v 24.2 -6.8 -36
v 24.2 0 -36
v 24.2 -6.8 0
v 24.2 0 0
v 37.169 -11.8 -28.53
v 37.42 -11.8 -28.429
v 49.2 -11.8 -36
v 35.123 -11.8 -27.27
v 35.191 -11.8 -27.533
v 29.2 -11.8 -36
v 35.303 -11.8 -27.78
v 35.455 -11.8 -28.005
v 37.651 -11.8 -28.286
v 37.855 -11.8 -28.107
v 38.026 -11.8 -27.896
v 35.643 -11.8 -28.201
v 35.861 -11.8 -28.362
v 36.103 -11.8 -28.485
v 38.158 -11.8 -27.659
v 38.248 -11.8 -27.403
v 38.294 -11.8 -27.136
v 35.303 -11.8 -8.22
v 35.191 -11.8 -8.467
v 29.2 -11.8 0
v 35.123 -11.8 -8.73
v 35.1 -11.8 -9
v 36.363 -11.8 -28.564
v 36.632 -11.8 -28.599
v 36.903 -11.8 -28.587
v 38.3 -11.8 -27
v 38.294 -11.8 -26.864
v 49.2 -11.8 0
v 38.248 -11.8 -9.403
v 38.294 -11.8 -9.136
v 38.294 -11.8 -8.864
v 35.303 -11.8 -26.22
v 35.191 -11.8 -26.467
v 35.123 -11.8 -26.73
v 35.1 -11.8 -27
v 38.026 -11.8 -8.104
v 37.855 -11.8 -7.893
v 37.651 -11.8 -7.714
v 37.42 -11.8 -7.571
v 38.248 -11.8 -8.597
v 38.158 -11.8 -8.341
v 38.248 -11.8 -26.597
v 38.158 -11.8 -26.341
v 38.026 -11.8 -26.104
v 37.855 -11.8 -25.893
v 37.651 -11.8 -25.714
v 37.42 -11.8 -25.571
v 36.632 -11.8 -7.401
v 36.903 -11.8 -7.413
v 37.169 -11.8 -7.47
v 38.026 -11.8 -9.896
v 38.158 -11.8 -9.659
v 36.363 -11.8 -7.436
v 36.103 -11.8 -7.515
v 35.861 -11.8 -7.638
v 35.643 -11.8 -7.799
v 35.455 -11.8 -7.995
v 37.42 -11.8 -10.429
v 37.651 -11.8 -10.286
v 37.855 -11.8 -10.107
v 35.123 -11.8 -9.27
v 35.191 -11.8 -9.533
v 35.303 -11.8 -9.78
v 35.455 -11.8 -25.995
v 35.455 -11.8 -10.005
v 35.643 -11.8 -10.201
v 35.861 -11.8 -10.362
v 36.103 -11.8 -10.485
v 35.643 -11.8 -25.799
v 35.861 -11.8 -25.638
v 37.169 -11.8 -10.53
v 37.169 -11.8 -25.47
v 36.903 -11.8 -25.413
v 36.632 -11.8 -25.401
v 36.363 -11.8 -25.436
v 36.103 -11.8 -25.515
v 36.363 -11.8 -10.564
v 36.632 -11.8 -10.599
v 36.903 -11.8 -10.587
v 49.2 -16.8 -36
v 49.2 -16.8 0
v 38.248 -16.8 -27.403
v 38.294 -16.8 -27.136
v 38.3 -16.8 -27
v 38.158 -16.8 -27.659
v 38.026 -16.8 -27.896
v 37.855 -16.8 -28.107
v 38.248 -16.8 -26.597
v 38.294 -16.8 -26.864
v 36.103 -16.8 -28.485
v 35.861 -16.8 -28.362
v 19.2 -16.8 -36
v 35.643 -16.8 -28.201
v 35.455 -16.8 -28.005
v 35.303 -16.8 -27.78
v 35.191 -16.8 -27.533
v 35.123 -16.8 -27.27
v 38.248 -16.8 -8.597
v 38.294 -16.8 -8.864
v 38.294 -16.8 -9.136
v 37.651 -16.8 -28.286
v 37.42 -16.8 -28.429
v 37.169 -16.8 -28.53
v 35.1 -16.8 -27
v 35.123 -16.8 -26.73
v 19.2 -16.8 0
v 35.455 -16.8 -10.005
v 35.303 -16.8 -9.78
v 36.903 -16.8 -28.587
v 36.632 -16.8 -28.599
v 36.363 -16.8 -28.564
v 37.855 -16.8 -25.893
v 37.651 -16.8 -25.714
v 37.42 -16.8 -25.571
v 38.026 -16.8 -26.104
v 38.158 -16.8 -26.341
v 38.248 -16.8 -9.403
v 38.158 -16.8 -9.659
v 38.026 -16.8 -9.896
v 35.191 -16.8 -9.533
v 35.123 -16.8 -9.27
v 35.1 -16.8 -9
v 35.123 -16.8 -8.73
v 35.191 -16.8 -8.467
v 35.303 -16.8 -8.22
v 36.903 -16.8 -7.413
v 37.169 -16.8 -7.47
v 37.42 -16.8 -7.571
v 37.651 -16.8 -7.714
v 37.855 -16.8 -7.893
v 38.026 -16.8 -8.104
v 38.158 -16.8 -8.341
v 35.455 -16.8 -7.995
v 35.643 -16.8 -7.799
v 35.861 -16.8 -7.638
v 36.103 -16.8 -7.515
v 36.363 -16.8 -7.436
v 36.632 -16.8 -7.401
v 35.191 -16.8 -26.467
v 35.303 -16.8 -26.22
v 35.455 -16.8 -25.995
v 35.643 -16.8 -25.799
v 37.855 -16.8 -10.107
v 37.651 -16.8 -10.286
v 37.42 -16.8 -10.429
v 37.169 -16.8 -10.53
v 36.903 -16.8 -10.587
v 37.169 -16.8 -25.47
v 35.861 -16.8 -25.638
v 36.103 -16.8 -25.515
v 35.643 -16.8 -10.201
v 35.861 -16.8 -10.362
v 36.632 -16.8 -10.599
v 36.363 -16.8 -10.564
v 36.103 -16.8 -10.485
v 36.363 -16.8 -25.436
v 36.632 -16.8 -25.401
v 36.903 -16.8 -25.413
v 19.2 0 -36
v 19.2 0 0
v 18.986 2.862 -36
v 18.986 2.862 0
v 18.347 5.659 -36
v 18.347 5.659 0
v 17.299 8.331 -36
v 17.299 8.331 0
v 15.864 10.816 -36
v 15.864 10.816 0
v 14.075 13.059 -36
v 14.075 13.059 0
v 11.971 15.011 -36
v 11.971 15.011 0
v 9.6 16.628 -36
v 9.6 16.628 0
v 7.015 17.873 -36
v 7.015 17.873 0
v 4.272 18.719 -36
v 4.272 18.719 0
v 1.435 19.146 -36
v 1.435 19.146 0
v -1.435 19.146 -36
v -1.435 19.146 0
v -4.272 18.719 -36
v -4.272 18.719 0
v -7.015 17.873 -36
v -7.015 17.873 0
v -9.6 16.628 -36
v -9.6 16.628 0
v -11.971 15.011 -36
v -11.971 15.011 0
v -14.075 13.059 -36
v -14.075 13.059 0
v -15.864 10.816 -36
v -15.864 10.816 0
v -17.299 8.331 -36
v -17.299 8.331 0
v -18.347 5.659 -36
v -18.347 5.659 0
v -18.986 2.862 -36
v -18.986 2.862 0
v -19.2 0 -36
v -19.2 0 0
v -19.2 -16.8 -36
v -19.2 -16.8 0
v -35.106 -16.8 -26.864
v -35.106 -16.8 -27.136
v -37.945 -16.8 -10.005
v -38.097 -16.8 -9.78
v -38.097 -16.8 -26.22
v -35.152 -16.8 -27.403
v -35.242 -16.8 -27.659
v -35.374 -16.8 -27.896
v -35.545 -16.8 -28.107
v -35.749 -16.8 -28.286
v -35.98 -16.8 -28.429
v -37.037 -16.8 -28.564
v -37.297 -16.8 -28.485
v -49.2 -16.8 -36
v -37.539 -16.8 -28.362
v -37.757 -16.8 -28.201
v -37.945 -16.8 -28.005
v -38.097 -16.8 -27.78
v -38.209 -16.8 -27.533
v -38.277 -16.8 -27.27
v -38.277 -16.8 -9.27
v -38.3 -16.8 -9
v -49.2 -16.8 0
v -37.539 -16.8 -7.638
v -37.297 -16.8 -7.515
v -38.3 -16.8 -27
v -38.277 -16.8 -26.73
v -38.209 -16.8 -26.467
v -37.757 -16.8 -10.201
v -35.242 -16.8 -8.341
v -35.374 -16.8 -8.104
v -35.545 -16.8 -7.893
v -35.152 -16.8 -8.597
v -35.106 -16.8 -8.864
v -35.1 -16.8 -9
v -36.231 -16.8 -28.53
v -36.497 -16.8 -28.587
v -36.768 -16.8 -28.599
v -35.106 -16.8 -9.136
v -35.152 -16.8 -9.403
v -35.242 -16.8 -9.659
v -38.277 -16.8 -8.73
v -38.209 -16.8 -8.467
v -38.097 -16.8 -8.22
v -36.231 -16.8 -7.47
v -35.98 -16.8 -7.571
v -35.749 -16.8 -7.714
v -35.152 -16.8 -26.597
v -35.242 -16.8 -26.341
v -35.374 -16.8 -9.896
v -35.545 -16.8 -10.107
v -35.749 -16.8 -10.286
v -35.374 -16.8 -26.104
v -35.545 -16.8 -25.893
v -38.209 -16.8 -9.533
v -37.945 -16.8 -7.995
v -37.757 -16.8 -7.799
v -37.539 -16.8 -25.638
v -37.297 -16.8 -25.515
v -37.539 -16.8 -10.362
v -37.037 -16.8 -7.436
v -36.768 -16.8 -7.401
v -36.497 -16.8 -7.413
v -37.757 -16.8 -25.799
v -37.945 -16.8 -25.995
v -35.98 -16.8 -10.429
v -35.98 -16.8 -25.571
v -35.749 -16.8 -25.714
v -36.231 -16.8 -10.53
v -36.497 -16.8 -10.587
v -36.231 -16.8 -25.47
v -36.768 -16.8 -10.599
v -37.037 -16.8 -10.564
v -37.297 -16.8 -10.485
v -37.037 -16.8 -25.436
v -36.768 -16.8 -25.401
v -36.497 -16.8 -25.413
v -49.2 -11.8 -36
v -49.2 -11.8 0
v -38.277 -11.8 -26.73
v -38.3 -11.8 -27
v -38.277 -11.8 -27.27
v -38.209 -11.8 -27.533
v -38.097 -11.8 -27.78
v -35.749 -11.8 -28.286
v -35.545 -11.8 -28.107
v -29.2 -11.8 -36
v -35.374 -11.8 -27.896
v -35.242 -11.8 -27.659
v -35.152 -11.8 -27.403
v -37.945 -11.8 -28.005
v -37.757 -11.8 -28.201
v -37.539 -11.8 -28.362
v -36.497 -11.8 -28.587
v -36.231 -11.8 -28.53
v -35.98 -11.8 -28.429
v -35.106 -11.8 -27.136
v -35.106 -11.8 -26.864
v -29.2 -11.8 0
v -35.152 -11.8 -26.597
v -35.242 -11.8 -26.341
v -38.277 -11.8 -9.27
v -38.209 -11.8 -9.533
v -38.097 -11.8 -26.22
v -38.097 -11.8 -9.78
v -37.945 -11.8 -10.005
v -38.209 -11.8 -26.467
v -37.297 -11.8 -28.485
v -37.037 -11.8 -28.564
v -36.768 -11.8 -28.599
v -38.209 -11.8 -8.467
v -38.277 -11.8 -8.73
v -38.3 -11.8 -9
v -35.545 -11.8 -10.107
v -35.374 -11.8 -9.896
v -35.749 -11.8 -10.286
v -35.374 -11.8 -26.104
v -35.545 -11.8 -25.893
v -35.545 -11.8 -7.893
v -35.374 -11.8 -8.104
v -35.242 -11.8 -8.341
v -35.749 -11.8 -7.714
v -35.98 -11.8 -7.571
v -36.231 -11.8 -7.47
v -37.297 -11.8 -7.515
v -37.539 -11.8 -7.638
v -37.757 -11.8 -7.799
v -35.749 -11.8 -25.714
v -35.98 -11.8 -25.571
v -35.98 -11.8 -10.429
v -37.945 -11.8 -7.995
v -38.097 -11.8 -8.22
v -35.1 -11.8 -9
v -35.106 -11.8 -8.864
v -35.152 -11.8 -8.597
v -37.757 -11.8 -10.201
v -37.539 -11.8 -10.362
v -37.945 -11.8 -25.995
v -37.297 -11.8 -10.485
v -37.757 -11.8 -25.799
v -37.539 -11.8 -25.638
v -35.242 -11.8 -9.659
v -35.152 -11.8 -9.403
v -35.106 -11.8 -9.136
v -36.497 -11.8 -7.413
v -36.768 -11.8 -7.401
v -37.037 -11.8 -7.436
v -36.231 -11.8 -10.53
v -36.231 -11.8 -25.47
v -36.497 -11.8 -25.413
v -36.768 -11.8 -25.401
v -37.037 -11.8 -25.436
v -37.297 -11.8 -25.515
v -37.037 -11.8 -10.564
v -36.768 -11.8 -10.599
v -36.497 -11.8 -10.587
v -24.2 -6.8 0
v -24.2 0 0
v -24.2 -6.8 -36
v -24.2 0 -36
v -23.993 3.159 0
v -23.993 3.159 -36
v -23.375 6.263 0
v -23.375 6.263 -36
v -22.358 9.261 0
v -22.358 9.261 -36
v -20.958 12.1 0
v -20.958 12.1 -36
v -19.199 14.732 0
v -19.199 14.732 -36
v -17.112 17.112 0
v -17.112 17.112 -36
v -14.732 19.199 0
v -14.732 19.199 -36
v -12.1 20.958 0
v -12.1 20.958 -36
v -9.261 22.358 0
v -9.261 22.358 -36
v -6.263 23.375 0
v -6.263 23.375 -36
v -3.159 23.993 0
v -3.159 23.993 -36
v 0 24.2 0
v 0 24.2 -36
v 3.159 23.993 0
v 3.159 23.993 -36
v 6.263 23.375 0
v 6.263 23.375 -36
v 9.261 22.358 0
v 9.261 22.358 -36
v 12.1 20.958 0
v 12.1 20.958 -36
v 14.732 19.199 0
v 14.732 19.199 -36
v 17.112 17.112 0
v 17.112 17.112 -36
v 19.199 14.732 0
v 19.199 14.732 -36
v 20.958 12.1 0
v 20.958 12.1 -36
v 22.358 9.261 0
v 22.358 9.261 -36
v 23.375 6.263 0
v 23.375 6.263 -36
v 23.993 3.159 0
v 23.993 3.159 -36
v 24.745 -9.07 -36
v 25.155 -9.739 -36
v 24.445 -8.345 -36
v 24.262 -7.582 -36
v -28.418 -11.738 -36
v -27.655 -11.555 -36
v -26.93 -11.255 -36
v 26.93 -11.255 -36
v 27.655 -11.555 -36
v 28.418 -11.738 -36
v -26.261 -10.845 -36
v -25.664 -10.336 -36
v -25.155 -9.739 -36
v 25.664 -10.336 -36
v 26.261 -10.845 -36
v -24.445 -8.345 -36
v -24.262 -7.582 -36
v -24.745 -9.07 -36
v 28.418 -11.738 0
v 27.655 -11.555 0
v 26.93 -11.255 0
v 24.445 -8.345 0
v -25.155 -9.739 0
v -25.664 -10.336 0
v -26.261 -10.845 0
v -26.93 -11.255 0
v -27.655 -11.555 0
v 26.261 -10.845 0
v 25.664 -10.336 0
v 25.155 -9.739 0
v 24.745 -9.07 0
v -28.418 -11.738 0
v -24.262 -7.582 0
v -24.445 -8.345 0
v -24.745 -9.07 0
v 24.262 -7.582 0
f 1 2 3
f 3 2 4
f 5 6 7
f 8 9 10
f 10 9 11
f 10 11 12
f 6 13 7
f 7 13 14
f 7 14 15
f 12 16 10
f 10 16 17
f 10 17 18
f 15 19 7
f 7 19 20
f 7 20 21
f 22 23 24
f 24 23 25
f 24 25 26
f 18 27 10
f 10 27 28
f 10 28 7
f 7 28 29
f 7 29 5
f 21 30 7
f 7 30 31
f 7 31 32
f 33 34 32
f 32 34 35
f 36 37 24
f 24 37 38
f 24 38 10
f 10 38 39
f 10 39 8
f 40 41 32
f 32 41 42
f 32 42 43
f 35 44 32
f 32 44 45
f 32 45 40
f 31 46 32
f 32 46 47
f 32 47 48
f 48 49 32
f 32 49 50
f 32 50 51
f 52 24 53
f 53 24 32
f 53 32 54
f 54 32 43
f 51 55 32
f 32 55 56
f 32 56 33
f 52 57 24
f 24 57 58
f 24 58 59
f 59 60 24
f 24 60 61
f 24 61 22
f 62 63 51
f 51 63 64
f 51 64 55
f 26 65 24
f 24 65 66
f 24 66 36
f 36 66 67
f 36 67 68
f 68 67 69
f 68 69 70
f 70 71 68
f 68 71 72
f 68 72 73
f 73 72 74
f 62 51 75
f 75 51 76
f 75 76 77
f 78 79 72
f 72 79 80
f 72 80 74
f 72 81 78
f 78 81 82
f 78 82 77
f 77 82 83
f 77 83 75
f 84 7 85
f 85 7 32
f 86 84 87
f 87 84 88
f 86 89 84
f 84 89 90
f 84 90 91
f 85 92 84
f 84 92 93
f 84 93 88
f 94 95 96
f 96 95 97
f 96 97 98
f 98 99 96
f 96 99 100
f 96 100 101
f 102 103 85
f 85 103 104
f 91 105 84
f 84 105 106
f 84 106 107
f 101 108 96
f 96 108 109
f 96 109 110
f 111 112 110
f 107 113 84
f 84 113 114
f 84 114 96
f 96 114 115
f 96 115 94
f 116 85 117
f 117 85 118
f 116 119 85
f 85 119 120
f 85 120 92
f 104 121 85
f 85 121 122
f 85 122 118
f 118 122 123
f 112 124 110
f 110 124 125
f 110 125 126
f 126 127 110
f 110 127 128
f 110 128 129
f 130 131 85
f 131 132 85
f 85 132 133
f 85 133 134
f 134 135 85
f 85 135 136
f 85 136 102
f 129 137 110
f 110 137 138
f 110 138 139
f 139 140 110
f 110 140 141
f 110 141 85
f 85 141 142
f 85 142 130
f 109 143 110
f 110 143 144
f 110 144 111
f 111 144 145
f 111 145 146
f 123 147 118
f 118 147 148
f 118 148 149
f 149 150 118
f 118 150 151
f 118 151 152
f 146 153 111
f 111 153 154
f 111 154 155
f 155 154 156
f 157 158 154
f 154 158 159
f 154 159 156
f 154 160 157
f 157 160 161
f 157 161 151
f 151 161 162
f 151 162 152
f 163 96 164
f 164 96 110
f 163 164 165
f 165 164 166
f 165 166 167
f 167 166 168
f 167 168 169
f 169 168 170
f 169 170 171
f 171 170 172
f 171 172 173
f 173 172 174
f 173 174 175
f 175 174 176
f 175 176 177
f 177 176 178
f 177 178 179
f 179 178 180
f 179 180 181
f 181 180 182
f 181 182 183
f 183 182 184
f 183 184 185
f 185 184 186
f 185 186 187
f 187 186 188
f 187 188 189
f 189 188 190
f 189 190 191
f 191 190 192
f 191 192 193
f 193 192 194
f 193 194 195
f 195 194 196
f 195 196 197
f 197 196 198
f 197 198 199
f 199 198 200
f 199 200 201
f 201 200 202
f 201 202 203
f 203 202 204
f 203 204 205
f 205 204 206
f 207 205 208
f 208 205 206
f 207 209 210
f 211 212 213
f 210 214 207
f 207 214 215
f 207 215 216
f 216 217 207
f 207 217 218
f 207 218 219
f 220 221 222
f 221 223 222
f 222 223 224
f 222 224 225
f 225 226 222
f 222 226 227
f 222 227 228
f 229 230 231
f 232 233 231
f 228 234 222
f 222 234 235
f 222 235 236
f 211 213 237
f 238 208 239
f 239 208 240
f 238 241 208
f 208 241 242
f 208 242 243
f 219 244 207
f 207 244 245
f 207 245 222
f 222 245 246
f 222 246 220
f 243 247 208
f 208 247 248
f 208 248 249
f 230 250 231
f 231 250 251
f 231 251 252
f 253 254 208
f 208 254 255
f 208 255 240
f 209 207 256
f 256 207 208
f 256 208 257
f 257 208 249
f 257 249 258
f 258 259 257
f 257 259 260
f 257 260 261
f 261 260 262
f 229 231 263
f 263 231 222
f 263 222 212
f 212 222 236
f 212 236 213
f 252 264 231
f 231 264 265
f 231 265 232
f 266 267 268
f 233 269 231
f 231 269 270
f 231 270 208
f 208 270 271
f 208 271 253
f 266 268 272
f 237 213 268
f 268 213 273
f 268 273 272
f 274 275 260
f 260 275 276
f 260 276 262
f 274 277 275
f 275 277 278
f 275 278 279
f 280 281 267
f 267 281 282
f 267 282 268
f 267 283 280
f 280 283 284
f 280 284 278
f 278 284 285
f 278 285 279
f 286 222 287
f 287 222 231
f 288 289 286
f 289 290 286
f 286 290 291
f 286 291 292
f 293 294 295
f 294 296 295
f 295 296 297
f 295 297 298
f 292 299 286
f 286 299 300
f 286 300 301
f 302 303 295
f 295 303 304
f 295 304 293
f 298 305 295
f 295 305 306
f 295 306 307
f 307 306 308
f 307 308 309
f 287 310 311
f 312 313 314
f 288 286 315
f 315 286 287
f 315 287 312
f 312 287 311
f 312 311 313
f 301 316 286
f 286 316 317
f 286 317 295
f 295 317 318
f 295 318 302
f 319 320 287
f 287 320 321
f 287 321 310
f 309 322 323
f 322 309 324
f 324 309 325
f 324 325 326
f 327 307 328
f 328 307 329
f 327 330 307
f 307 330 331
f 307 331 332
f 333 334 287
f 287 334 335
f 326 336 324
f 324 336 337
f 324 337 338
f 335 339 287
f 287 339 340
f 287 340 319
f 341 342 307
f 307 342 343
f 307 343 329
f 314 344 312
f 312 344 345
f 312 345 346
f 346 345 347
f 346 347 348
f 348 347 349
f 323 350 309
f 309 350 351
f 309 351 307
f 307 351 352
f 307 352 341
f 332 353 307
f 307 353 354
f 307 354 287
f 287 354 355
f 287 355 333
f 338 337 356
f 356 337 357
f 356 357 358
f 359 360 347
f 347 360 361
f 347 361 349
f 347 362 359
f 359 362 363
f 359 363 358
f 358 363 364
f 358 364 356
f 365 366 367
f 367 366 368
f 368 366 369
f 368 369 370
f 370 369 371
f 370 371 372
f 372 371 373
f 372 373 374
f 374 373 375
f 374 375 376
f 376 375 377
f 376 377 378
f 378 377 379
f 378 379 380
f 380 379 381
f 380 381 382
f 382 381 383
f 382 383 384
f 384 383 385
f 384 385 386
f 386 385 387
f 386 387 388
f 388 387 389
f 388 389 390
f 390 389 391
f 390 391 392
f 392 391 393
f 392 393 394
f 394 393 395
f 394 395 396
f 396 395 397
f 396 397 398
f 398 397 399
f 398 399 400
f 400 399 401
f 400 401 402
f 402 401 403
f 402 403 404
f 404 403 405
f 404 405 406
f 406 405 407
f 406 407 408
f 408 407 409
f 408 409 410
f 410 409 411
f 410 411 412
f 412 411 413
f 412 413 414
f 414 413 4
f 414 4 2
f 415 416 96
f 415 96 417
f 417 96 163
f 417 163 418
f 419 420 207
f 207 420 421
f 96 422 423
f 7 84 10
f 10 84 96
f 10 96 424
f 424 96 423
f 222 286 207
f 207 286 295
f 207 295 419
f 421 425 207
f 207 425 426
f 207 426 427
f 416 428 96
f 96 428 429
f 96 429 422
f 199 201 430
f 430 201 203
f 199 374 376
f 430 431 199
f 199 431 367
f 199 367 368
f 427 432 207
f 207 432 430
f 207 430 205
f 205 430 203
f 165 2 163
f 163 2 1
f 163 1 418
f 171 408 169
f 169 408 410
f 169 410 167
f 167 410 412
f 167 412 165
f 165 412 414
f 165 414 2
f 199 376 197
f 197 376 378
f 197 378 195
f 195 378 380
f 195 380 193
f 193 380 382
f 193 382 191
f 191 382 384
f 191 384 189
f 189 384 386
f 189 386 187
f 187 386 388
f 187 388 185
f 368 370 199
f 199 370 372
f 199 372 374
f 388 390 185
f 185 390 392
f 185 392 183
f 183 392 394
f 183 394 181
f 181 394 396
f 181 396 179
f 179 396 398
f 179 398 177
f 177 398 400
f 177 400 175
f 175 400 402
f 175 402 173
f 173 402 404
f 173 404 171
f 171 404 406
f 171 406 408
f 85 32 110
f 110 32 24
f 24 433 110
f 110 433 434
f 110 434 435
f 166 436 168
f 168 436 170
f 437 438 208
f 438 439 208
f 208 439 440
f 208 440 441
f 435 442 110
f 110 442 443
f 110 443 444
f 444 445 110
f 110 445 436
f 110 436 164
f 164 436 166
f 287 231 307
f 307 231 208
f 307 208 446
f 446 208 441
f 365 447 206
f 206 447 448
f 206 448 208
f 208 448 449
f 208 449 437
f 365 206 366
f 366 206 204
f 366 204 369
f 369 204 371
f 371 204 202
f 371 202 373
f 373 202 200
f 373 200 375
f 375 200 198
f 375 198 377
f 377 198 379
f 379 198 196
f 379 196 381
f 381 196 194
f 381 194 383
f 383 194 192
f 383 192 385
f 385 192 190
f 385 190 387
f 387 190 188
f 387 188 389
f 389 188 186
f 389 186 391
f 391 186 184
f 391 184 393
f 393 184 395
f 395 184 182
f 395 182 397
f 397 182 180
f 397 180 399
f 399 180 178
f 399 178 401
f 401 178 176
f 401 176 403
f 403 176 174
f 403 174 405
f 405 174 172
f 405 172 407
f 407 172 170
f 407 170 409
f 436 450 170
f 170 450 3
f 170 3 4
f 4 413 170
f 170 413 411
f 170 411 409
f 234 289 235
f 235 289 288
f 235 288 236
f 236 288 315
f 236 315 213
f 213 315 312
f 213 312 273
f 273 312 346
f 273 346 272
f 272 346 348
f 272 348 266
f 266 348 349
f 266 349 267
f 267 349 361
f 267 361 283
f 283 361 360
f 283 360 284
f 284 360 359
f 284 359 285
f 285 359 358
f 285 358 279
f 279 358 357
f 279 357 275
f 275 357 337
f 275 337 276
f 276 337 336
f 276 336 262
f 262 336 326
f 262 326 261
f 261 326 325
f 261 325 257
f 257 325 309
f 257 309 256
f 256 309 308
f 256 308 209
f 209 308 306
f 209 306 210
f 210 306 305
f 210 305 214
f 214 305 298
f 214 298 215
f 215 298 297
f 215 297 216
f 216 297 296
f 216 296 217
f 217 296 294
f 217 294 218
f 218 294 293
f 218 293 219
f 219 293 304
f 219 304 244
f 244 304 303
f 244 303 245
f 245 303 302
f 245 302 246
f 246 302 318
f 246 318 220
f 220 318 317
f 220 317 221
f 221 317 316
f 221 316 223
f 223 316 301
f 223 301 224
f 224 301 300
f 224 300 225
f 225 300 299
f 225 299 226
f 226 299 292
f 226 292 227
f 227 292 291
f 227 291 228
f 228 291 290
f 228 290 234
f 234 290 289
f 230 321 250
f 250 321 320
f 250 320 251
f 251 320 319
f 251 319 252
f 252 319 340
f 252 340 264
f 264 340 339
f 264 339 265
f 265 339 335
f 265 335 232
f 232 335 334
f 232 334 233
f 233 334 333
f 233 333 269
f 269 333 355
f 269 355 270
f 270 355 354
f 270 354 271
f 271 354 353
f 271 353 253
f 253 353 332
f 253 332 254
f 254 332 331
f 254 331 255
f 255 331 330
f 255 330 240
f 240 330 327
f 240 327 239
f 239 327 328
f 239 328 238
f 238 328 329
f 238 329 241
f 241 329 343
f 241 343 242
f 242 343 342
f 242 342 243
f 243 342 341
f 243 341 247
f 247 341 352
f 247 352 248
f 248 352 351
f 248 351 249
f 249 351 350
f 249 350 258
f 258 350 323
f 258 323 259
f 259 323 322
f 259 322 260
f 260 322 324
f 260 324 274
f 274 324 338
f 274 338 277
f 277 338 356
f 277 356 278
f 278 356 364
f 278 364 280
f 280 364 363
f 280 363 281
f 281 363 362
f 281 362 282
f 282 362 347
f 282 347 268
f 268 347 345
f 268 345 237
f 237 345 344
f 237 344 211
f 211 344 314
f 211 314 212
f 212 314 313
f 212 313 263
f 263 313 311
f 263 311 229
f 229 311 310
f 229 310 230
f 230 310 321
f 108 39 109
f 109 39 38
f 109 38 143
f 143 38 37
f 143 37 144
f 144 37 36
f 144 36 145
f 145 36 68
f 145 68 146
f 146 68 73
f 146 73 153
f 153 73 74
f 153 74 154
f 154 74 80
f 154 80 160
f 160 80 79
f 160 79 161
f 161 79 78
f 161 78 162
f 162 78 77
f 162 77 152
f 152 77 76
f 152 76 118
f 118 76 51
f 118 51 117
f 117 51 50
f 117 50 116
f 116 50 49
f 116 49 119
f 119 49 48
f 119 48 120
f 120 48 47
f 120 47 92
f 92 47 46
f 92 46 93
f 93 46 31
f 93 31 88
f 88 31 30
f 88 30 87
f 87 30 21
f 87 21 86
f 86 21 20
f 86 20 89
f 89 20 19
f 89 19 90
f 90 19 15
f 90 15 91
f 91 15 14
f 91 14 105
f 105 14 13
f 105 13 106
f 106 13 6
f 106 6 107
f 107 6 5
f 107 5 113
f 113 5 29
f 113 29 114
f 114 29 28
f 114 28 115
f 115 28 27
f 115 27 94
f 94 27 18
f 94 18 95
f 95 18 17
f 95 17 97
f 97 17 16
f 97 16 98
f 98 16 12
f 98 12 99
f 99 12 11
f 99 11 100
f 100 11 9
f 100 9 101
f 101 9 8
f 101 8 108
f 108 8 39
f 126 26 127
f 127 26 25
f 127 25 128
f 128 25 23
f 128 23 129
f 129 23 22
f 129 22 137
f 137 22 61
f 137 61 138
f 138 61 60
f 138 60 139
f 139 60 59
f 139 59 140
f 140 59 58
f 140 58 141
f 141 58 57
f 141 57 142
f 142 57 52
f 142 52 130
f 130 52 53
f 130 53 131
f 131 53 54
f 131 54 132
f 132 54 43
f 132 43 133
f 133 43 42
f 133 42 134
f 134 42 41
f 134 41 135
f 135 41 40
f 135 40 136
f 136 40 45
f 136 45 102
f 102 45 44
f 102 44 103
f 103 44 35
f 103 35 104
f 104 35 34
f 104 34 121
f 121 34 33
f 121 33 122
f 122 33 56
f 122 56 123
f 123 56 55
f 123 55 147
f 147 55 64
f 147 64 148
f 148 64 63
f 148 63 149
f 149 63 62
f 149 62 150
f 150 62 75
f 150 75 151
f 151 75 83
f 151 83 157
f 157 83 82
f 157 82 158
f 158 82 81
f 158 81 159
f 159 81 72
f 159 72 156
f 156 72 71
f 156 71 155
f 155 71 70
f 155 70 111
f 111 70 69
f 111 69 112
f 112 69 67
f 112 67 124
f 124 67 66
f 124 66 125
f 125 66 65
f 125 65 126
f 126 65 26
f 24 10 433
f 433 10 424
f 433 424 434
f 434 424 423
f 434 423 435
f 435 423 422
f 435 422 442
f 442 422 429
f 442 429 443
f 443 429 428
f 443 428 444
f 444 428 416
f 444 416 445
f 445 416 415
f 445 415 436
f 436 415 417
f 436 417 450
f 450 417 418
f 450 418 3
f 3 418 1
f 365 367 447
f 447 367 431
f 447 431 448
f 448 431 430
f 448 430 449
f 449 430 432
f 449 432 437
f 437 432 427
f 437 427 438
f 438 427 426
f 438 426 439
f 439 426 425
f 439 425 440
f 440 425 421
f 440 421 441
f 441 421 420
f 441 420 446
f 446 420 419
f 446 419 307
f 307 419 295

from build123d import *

# Parameters (mm, degrees)
BOSS_EXTRUDE1_DEPTH = 36
SKETCH2_R           = 1.6
CUT_EXTRUDE1_DEPTH  = 5
FILLET1_R           = 5


with BuildPart() as part:
    # Sketch1 → Boss-Extrude1 (new body)
    with BuildSketch(Plane.XY):
        with BuildLine():
            Line((-19.2, 0), (-19.2, -16.8))
            Line((-19.2, -16.8), (-49.2, -16.8))
            Line((-49.2, -16.8), (-49.2, -11.8))
            Line((-49.2, -11.8), (-24.2, -11.8))
            Line((-24.2, -11.8), (-24.2, 0))
            ThreePointArc((-24.2, 0), (0, 24.2), (24.2, 0))
            Line((24.2, 0), (24.2, -11.8))
            Line((24.2, -11.8), (49.2, -11.8))
            Line((49.2, -11.8), (49.2, -16.8))
            Line((49.2, -16.8), (19.2, -16.8))
            Line((19.2, -16.8), (19.2, 0))
            ThreePointArc((19.2, 0), (0, 19.2), (-19.2, 0))
        make_face()
    extrude(amount=-BOSS_EXTRUDE1_DEPTH)

    # Sketch2 → Cut-Extrude1 (cut)
    with BuildSketch(Plane(origin=(0, -11.8, 0), x_dir=(1, 0, 0), z_dir=(0, 1, 0))):
        with Locations((-36.7, 27)):
            Circle(SKETCH2_R)
        with Locations((-36.7, 9)):
            Circle(SKETCH2_R)
        with Locations((36.7, 27)):
            Circle(SKETCH2_R)
        with Locations((36.7, 9)):
            Circle(SKETCH2_R)
    extrude(amount=-CUT_EXTRUDE1_DEPTH, mode=Mode.SUBTRACT)

    # Fillet1
    fillet1_edges = [part.edges().sort_by_distance(p)[0] for p in [
        (24.2, -11.8, -18),
        (-24.2, -11.8, -18),
    ]]
    fillet(fillet1_edges, radius=FILLET1_R)


solid = part.part
